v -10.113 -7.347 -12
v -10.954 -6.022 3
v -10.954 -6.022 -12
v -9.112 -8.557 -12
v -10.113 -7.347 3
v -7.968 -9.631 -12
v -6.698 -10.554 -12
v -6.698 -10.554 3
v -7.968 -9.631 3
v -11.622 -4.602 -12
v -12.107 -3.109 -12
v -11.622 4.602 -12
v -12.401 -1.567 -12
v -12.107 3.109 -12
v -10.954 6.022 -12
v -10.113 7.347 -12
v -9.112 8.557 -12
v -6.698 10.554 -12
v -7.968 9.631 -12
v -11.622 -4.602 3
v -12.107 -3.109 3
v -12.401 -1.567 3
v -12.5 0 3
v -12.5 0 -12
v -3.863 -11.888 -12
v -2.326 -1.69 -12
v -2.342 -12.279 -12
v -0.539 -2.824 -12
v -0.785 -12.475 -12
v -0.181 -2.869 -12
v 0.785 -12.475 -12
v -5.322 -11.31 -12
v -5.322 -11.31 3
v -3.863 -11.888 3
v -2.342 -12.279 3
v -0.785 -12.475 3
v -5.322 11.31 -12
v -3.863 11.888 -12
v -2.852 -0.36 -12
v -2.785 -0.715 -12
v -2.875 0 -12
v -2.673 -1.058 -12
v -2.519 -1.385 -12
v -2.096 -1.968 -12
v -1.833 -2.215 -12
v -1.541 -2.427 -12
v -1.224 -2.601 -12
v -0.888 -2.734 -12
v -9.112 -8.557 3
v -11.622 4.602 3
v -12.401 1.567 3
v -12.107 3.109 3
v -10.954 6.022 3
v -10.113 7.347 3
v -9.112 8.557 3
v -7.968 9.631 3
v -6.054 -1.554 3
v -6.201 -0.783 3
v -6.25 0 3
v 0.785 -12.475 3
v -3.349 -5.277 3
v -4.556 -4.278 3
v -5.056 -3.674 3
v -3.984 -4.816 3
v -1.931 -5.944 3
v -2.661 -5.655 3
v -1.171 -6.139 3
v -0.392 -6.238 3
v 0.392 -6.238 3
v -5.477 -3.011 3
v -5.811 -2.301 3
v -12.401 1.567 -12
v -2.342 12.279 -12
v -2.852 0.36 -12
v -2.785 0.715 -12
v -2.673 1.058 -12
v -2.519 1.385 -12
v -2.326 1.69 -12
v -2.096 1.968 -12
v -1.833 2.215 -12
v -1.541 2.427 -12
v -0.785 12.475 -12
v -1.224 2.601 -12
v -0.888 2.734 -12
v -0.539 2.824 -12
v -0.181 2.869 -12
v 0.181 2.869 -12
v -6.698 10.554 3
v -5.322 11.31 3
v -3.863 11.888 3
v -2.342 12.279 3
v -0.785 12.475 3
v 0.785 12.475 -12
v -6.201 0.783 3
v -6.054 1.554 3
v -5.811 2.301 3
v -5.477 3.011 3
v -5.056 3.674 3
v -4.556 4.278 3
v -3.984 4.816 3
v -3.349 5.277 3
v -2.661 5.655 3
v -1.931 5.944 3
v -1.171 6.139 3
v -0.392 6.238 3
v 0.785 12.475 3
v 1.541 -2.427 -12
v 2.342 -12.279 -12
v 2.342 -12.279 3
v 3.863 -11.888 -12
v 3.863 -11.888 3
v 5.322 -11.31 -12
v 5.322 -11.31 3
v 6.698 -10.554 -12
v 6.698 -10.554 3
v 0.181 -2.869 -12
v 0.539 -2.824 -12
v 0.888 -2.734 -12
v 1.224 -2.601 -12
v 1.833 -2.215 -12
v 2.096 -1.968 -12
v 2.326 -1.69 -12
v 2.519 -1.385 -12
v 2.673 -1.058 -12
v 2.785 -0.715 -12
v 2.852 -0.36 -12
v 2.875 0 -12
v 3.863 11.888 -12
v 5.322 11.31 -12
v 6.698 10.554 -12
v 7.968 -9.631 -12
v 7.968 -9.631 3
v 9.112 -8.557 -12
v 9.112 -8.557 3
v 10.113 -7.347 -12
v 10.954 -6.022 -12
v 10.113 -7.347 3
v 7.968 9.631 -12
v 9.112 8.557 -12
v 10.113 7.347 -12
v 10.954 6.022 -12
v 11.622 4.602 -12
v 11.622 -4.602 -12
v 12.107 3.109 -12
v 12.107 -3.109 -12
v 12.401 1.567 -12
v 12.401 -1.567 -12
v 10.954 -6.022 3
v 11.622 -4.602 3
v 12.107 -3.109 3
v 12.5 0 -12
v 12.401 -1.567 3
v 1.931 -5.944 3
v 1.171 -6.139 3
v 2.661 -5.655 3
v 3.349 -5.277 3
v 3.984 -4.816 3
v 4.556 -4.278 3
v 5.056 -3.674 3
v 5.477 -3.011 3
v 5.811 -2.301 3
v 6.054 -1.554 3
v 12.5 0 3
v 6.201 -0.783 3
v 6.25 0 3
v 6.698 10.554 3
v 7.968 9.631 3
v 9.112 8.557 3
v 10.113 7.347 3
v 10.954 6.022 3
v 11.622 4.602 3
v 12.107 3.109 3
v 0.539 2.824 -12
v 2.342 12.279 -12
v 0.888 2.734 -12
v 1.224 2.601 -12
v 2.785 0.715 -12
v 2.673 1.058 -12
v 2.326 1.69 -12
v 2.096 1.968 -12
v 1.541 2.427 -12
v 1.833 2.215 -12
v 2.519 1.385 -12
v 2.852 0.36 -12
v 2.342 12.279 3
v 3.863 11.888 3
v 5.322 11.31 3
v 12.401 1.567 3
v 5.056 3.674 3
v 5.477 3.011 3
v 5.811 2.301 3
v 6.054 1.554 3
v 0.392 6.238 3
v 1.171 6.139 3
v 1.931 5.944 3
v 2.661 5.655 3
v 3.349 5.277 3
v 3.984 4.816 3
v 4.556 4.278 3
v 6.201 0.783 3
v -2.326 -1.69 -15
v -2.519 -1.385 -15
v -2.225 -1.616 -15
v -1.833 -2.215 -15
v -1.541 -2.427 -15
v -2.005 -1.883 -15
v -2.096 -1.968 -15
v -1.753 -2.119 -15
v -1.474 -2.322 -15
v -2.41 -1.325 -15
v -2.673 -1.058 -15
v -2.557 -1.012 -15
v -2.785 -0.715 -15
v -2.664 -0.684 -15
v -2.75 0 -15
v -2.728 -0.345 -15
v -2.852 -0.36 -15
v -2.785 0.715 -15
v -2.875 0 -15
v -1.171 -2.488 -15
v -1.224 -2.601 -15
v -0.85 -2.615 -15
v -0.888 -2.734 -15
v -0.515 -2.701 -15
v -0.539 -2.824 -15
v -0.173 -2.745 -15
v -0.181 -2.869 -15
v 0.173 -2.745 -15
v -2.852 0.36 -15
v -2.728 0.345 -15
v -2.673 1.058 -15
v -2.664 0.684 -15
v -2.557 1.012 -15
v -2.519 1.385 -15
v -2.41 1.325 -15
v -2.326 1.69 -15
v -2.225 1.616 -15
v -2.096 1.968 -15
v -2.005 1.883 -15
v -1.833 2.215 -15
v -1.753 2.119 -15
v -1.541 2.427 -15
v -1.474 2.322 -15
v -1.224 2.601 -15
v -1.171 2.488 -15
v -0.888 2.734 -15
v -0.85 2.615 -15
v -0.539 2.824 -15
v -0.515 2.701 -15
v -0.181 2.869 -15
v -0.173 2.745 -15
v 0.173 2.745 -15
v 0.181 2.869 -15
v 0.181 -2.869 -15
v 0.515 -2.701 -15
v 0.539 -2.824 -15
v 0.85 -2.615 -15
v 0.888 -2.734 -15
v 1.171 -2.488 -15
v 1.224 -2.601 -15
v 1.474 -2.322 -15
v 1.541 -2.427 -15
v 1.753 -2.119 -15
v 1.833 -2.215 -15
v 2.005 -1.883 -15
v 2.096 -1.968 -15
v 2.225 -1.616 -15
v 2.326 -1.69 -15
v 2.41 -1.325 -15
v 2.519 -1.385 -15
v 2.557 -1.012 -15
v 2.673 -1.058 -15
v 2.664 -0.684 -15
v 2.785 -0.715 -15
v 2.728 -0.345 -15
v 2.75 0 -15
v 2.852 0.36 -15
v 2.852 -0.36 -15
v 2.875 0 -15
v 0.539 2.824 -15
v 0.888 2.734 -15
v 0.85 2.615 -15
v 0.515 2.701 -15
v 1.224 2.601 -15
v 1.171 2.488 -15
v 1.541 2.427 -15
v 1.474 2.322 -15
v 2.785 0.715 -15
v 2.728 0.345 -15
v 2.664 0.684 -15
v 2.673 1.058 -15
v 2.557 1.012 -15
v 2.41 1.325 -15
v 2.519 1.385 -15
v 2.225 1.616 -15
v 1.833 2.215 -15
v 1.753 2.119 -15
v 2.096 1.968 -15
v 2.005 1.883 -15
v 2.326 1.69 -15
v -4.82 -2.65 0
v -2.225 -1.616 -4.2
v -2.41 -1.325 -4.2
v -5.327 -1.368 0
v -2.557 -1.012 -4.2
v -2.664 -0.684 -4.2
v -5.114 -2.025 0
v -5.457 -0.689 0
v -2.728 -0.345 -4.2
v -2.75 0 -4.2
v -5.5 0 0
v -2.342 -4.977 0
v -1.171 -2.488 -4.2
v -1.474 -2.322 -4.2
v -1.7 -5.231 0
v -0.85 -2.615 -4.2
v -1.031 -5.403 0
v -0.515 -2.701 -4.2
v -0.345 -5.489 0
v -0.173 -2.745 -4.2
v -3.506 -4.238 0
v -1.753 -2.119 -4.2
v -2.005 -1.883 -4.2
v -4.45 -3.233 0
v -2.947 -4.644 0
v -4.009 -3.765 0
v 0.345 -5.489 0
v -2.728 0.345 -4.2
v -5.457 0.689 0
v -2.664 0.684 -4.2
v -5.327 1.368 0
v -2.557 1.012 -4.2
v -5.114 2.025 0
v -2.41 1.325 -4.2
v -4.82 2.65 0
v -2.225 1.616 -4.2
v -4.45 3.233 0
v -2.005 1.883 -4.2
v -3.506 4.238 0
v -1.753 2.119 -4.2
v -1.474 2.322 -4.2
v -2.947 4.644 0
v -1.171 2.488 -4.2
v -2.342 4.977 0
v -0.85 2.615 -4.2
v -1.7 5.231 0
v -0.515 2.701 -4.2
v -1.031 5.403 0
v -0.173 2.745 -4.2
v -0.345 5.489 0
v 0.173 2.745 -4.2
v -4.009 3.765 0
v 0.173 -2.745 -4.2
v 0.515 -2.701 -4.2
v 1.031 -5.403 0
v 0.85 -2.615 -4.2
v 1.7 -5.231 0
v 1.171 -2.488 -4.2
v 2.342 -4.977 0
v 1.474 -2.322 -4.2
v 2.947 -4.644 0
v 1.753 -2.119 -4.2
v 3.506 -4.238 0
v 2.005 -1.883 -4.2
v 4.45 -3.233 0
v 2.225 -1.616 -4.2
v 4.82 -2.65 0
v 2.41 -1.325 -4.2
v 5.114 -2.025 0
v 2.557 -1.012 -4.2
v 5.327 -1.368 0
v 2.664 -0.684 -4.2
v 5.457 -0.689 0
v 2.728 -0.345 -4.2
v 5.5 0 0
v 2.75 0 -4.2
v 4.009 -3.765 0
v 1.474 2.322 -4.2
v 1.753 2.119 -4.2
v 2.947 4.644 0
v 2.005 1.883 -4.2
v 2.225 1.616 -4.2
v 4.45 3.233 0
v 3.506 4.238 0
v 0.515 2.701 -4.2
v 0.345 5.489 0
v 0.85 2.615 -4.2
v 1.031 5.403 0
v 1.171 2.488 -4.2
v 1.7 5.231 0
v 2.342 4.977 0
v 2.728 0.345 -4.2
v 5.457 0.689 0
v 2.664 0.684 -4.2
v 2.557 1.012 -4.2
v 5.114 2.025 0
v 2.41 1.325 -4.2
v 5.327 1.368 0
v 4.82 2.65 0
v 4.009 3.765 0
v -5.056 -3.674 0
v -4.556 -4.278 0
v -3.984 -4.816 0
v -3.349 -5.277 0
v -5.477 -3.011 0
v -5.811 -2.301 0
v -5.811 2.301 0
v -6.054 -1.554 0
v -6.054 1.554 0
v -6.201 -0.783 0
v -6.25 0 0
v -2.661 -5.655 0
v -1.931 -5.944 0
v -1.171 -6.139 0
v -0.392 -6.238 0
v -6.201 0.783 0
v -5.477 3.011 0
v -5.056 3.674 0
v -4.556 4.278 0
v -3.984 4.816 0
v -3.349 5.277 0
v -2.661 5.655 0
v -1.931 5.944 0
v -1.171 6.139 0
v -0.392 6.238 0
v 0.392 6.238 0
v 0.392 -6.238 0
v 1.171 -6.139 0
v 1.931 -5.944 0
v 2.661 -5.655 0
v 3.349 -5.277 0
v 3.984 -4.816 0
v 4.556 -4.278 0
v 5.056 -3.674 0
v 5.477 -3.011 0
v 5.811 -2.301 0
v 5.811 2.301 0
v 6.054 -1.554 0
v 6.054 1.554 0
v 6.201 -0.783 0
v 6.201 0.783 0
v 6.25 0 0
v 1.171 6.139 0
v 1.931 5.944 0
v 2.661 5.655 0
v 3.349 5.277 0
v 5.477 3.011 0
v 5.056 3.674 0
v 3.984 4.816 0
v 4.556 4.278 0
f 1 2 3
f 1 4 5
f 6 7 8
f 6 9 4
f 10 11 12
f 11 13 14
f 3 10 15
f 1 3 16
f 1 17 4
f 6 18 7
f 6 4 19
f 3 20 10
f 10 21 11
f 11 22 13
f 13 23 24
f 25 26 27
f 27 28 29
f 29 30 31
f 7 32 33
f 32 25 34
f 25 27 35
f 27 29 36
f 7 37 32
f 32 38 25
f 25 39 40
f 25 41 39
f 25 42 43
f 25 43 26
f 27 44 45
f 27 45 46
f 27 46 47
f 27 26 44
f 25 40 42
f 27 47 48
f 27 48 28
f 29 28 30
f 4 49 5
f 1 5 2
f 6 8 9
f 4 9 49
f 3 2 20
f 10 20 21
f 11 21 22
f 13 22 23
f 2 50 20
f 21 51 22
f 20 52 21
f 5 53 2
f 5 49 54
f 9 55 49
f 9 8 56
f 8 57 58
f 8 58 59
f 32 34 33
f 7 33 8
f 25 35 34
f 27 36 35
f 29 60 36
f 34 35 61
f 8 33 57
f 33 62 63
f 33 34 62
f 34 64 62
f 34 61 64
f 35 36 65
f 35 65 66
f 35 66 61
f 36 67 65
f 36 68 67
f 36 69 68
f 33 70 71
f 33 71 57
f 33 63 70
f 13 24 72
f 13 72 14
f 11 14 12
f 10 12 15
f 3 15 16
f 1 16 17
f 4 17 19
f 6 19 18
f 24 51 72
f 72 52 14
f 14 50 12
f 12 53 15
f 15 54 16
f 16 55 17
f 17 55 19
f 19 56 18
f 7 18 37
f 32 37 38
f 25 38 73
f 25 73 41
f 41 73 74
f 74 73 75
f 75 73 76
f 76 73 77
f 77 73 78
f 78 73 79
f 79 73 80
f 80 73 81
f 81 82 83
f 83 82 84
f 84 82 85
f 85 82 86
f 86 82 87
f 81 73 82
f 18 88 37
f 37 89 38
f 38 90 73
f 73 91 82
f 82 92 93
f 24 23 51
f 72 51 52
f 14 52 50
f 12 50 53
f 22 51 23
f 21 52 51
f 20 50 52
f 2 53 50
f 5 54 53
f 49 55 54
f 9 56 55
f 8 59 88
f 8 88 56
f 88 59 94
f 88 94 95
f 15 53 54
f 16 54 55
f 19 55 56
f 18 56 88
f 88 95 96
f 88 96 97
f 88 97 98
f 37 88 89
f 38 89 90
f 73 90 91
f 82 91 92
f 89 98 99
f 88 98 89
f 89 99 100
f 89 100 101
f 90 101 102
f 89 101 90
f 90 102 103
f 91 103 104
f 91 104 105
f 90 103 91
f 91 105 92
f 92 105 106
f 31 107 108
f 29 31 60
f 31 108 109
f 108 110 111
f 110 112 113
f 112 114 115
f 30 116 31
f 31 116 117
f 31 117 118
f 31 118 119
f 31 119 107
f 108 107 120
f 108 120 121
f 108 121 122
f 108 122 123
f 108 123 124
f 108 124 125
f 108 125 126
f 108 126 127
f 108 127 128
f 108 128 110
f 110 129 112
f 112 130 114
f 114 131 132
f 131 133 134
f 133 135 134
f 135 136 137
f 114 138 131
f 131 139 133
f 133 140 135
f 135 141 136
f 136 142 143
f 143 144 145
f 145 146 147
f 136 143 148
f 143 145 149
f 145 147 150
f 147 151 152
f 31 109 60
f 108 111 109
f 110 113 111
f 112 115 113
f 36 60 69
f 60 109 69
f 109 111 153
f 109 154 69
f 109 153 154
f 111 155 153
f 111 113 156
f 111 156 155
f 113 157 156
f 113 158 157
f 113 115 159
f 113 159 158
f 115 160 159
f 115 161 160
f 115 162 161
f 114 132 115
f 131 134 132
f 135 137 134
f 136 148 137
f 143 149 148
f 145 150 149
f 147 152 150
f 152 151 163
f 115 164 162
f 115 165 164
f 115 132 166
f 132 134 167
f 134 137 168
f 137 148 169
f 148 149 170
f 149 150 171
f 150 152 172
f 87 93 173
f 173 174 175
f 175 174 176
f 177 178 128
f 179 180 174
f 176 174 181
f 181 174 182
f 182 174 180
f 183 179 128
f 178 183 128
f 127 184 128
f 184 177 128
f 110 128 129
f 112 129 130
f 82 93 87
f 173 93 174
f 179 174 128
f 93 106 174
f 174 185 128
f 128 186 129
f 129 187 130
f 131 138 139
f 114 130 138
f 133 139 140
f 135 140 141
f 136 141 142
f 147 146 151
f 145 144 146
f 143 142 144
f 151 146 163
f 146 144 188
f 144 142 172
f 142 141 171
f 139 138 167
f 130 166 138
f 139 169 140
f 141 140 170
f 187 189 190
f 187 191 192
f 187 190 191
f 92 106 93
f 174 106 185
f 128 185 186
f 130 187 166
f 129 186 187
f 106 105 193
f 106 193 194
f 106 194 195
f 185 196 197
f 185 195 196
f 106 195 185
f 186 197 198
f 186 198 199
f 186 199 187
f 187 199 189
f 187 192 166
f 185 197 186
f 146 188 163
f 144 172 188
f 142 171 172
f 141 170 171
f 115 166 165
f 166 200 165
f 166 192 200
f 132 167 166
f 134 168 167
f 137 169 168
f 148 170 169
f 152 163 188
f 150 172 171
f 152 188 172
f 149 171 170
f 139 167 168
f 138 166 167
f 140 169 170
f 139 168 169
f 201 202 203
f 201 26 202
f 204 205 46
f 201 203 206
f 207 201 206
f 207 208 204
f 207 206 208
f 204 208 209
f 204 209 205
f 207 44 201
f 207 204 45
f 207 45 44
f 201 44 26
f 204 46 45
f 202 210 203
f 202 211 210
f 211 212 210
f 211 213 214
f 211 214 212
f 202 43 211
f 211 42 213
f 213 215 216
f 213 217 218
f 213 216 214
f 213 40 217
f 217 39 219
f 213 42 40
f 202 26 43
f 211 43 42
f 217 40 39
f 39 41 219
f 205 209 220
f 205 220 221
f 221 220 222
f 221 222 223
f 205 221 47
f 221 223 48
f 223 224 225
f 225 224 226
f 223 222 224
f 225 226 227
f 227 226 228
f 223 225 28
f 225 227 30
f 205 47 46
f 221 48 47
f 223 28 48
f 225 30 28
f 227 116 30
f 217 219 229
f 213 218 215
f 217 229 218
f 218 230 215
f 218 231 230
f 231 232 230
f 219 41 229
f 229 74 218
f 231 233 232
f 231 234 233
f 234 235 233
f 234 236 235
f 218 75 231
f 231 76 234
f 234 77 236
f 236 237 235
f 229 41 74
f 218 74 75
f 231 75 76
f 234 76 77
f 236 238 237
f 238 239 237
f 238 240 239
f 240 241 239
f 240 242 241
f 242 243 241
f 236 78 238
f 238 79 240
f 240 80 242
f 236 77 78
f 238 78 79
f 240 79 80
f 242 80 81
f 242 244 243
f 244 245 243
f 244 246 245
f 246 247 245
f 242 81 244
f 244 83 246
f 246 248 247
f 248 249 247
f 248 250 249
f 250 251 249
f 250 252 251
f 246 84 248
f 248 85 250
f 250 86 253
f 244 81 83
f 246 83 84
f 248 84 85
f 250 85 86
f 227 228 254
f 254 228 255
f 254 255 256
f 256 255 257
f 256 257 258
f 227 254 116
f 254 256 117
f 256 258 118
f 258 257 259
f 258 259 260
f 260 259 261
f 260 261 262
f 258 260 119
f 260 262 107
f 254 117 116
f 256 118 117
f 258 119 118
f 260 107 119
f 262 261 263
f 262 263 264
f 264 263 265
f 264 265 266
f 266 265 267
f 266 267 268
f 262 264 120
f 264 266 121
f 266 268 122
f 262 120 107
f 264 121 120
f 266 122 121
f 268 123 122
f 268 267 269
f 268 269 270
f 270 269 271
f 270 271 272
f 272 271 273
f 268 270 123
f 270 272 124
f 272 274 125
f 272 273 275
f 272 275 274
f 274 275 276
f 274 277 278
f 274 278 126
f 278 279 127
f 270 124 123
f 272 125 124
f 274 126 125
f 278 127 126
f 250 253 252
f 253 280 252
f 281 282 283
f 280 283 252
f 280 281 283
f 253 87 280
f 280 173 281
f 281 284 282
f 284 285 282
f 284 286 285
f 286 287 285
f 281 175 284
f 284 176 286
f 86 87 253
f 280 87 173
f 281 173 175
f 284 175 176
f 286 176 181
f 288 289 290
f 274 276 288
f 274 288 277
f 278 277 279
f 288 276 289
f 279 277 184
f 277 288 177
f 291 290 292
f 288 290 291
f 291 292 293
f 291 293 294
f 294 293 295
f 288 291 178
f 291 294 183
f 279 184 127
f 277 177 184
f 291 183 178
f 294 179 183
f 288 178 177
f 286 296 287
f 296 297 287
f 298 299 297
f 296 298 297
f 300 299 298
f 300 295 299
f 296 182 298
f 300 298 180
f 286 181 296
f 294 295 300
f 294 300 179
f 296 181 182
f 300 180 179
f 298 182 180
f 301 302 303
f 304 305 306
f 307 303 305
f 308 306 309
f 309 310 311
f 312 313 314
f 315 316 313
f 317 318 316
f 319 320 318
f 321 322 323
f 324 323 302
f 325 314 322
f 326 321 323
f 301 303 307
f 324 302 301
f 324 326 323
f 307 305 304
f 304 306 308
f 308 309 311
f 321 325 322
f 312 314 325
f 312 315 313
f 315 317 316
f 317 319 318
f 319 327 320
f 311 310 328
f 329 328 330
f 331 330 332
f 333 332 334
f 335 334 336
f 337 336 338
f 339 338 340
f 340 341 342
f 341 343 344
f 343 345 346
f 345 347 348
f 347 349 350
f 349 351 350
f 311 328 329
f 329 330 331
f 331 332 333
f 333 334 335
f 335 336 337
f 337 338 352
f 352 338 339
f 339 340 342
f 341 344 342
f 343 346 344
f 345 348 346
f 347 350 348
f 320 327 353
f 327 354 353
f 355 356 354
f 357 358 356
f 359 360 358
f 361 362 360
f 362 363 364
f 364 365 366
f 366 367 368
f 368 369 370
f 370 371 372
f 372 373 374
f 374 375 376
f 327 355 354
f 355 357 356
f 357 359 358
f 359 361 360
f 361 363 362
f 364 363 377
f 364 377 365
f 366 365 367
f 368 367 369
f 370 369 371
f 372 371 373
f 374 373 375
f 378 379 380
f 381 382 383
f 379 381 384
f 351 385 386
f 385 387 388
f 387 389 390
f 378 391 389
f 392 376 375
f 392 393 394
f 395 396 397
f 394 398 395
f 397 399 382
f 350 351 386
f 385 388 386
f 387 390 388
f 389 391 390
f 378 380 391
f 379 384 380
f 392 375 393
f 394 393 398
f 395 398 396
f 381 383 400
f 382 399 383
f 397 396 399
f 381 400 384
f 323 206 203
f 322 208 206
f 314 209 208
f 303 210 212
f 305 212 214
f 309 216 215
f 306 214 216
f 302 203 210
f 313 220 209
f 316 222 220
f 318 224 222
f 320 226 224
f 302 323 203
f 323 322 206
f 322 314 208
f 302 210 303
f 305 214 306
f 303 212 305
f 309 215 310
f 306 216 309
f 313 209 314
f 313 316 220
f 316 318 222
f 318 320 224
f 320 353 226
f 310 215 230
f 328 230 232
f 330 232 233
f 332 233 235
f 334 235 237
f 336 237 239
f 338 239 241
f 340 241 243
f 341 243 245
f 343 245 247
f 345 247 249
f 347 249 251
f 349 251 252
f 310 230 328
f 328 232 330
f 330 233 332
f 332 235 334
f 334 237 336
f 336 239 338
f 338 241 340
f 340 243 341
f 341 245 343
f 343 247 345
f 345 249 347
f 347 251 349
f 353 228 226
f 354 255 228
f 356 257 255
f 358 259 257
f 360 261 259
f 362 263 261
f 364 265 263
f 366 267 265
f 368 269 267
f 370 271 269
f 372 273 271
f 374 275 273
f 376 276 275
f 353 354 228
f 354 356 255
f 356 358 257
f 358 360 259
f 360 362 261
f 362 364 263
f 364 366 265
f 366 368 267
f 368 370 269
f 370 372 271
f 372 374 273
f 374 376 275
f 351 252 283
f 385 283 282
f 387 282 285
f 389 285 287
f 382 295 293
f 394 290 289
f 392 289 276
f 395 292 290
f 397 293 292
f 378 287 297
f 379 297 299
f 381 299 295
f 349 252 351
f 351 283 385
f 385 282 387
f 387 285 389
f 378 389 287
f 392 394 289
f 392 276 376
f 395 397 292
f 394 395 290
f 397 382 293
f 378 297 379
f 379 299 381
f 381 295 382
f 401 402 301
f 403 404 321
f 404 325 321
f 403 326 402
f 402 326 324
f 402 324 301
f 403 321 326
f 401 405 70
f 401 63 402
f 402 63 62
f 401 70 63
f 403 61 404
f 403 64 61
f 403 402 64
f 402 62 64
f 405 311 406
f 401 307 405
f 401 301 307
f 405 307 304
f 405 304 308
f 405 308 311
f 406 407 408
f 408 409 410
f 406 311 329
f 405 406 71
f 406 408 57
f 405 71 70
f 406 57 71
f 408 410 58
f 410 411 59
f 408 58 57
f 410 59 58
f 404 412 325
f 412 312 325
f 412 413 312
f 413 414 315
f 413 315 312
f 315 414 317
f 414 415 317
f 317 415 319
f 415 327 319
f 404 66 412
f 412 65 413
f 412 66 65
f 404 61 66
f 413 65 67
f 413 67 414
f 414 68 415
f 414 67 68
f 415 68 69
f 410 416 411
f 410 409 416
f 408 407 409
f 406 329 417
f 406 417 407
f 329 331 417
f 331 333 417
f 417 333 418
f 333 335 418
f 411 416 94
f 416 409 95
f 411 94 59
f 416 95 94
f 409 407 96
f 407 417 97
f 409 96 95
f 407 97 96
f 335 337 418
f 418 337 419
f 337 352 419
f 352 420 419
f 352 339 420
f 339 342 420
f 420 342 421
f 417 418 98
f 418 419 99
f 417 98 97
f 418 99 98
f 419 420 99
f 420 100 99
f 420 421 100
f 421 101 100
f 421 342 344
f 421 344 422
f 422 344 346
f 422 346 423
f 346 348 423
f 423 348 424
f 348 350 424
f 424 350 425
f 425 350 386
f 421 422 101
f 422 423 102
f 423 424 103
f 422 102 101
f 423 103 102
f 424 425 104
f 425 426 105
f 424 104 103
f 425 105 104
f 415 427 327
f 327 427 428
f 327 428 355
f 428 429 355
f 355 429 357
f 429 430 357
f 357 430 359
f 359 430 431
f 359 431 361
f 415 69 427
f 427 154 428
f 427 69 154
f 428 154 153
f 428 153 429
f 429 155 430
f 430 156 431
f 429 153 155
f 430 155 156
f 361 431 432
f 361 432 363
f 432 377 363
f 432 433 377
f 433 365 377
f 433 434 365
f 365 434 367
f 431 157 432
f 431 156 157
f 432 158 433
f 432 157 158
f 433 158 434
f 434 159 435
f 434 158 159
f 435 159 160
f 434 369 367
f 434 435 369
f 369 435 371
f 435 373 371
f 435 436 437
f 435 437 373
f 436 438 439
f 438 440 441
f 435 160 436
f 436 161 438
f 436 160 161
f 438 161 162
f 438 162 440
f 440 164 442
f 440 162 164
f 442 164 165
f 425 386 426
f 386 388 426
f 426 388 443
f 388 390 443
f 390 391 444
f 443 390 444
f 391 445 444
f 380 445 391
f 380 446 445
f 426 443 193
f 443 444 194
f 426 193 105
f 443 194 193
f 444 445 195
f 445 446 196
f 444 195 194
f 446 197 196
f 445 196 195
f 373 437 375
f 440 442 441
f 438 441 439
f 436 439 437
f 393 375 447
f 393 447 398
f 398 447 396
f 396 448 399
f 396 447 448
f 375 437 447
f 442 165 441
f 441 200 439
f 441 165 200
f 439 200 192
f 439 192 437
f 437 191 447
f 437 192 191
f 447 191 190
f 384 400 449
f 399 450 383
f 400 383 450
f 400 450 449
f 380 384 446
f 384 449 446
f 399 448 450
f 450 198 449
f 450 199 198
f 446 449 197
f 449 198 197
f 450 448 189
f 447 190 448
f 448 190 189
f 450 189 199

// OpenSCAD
$fn = 50;

difference() {
	union() {
		translate(v = [0, 0, -12.0]) {
			cylinder(h = 15, r = 12.5);
		}
		#translate(v = [0, 0, -15.0]) {
			cylinder(h = 15, r = 2.875);
		}
	}
	union() {
		translate(v = [0, 0, 0]) {
			rotate(a = [0, 0, 0]) {
				difference() {
					union() {
						translate(v = [0, 0, -15.0]) {
							cylinder(h = 15, r = 2.25);
						}
						translate(v = [0, 0, -4.2]) {
							cylinder(h = 4.2, r1 = 2.75, r2 = 5.5);
						}
						translate(v = [0, 0, -15.0]) {
							cylinder(h = 15, r = 2.75);
						}
						translate(v = [0, 0, -15.0]) {
							cylinder(h = 15, r = 2.25);
						}
					}
					union();
				}
			}
		}
		#cylinder(h = 3, r = 6.25);
	}
}
